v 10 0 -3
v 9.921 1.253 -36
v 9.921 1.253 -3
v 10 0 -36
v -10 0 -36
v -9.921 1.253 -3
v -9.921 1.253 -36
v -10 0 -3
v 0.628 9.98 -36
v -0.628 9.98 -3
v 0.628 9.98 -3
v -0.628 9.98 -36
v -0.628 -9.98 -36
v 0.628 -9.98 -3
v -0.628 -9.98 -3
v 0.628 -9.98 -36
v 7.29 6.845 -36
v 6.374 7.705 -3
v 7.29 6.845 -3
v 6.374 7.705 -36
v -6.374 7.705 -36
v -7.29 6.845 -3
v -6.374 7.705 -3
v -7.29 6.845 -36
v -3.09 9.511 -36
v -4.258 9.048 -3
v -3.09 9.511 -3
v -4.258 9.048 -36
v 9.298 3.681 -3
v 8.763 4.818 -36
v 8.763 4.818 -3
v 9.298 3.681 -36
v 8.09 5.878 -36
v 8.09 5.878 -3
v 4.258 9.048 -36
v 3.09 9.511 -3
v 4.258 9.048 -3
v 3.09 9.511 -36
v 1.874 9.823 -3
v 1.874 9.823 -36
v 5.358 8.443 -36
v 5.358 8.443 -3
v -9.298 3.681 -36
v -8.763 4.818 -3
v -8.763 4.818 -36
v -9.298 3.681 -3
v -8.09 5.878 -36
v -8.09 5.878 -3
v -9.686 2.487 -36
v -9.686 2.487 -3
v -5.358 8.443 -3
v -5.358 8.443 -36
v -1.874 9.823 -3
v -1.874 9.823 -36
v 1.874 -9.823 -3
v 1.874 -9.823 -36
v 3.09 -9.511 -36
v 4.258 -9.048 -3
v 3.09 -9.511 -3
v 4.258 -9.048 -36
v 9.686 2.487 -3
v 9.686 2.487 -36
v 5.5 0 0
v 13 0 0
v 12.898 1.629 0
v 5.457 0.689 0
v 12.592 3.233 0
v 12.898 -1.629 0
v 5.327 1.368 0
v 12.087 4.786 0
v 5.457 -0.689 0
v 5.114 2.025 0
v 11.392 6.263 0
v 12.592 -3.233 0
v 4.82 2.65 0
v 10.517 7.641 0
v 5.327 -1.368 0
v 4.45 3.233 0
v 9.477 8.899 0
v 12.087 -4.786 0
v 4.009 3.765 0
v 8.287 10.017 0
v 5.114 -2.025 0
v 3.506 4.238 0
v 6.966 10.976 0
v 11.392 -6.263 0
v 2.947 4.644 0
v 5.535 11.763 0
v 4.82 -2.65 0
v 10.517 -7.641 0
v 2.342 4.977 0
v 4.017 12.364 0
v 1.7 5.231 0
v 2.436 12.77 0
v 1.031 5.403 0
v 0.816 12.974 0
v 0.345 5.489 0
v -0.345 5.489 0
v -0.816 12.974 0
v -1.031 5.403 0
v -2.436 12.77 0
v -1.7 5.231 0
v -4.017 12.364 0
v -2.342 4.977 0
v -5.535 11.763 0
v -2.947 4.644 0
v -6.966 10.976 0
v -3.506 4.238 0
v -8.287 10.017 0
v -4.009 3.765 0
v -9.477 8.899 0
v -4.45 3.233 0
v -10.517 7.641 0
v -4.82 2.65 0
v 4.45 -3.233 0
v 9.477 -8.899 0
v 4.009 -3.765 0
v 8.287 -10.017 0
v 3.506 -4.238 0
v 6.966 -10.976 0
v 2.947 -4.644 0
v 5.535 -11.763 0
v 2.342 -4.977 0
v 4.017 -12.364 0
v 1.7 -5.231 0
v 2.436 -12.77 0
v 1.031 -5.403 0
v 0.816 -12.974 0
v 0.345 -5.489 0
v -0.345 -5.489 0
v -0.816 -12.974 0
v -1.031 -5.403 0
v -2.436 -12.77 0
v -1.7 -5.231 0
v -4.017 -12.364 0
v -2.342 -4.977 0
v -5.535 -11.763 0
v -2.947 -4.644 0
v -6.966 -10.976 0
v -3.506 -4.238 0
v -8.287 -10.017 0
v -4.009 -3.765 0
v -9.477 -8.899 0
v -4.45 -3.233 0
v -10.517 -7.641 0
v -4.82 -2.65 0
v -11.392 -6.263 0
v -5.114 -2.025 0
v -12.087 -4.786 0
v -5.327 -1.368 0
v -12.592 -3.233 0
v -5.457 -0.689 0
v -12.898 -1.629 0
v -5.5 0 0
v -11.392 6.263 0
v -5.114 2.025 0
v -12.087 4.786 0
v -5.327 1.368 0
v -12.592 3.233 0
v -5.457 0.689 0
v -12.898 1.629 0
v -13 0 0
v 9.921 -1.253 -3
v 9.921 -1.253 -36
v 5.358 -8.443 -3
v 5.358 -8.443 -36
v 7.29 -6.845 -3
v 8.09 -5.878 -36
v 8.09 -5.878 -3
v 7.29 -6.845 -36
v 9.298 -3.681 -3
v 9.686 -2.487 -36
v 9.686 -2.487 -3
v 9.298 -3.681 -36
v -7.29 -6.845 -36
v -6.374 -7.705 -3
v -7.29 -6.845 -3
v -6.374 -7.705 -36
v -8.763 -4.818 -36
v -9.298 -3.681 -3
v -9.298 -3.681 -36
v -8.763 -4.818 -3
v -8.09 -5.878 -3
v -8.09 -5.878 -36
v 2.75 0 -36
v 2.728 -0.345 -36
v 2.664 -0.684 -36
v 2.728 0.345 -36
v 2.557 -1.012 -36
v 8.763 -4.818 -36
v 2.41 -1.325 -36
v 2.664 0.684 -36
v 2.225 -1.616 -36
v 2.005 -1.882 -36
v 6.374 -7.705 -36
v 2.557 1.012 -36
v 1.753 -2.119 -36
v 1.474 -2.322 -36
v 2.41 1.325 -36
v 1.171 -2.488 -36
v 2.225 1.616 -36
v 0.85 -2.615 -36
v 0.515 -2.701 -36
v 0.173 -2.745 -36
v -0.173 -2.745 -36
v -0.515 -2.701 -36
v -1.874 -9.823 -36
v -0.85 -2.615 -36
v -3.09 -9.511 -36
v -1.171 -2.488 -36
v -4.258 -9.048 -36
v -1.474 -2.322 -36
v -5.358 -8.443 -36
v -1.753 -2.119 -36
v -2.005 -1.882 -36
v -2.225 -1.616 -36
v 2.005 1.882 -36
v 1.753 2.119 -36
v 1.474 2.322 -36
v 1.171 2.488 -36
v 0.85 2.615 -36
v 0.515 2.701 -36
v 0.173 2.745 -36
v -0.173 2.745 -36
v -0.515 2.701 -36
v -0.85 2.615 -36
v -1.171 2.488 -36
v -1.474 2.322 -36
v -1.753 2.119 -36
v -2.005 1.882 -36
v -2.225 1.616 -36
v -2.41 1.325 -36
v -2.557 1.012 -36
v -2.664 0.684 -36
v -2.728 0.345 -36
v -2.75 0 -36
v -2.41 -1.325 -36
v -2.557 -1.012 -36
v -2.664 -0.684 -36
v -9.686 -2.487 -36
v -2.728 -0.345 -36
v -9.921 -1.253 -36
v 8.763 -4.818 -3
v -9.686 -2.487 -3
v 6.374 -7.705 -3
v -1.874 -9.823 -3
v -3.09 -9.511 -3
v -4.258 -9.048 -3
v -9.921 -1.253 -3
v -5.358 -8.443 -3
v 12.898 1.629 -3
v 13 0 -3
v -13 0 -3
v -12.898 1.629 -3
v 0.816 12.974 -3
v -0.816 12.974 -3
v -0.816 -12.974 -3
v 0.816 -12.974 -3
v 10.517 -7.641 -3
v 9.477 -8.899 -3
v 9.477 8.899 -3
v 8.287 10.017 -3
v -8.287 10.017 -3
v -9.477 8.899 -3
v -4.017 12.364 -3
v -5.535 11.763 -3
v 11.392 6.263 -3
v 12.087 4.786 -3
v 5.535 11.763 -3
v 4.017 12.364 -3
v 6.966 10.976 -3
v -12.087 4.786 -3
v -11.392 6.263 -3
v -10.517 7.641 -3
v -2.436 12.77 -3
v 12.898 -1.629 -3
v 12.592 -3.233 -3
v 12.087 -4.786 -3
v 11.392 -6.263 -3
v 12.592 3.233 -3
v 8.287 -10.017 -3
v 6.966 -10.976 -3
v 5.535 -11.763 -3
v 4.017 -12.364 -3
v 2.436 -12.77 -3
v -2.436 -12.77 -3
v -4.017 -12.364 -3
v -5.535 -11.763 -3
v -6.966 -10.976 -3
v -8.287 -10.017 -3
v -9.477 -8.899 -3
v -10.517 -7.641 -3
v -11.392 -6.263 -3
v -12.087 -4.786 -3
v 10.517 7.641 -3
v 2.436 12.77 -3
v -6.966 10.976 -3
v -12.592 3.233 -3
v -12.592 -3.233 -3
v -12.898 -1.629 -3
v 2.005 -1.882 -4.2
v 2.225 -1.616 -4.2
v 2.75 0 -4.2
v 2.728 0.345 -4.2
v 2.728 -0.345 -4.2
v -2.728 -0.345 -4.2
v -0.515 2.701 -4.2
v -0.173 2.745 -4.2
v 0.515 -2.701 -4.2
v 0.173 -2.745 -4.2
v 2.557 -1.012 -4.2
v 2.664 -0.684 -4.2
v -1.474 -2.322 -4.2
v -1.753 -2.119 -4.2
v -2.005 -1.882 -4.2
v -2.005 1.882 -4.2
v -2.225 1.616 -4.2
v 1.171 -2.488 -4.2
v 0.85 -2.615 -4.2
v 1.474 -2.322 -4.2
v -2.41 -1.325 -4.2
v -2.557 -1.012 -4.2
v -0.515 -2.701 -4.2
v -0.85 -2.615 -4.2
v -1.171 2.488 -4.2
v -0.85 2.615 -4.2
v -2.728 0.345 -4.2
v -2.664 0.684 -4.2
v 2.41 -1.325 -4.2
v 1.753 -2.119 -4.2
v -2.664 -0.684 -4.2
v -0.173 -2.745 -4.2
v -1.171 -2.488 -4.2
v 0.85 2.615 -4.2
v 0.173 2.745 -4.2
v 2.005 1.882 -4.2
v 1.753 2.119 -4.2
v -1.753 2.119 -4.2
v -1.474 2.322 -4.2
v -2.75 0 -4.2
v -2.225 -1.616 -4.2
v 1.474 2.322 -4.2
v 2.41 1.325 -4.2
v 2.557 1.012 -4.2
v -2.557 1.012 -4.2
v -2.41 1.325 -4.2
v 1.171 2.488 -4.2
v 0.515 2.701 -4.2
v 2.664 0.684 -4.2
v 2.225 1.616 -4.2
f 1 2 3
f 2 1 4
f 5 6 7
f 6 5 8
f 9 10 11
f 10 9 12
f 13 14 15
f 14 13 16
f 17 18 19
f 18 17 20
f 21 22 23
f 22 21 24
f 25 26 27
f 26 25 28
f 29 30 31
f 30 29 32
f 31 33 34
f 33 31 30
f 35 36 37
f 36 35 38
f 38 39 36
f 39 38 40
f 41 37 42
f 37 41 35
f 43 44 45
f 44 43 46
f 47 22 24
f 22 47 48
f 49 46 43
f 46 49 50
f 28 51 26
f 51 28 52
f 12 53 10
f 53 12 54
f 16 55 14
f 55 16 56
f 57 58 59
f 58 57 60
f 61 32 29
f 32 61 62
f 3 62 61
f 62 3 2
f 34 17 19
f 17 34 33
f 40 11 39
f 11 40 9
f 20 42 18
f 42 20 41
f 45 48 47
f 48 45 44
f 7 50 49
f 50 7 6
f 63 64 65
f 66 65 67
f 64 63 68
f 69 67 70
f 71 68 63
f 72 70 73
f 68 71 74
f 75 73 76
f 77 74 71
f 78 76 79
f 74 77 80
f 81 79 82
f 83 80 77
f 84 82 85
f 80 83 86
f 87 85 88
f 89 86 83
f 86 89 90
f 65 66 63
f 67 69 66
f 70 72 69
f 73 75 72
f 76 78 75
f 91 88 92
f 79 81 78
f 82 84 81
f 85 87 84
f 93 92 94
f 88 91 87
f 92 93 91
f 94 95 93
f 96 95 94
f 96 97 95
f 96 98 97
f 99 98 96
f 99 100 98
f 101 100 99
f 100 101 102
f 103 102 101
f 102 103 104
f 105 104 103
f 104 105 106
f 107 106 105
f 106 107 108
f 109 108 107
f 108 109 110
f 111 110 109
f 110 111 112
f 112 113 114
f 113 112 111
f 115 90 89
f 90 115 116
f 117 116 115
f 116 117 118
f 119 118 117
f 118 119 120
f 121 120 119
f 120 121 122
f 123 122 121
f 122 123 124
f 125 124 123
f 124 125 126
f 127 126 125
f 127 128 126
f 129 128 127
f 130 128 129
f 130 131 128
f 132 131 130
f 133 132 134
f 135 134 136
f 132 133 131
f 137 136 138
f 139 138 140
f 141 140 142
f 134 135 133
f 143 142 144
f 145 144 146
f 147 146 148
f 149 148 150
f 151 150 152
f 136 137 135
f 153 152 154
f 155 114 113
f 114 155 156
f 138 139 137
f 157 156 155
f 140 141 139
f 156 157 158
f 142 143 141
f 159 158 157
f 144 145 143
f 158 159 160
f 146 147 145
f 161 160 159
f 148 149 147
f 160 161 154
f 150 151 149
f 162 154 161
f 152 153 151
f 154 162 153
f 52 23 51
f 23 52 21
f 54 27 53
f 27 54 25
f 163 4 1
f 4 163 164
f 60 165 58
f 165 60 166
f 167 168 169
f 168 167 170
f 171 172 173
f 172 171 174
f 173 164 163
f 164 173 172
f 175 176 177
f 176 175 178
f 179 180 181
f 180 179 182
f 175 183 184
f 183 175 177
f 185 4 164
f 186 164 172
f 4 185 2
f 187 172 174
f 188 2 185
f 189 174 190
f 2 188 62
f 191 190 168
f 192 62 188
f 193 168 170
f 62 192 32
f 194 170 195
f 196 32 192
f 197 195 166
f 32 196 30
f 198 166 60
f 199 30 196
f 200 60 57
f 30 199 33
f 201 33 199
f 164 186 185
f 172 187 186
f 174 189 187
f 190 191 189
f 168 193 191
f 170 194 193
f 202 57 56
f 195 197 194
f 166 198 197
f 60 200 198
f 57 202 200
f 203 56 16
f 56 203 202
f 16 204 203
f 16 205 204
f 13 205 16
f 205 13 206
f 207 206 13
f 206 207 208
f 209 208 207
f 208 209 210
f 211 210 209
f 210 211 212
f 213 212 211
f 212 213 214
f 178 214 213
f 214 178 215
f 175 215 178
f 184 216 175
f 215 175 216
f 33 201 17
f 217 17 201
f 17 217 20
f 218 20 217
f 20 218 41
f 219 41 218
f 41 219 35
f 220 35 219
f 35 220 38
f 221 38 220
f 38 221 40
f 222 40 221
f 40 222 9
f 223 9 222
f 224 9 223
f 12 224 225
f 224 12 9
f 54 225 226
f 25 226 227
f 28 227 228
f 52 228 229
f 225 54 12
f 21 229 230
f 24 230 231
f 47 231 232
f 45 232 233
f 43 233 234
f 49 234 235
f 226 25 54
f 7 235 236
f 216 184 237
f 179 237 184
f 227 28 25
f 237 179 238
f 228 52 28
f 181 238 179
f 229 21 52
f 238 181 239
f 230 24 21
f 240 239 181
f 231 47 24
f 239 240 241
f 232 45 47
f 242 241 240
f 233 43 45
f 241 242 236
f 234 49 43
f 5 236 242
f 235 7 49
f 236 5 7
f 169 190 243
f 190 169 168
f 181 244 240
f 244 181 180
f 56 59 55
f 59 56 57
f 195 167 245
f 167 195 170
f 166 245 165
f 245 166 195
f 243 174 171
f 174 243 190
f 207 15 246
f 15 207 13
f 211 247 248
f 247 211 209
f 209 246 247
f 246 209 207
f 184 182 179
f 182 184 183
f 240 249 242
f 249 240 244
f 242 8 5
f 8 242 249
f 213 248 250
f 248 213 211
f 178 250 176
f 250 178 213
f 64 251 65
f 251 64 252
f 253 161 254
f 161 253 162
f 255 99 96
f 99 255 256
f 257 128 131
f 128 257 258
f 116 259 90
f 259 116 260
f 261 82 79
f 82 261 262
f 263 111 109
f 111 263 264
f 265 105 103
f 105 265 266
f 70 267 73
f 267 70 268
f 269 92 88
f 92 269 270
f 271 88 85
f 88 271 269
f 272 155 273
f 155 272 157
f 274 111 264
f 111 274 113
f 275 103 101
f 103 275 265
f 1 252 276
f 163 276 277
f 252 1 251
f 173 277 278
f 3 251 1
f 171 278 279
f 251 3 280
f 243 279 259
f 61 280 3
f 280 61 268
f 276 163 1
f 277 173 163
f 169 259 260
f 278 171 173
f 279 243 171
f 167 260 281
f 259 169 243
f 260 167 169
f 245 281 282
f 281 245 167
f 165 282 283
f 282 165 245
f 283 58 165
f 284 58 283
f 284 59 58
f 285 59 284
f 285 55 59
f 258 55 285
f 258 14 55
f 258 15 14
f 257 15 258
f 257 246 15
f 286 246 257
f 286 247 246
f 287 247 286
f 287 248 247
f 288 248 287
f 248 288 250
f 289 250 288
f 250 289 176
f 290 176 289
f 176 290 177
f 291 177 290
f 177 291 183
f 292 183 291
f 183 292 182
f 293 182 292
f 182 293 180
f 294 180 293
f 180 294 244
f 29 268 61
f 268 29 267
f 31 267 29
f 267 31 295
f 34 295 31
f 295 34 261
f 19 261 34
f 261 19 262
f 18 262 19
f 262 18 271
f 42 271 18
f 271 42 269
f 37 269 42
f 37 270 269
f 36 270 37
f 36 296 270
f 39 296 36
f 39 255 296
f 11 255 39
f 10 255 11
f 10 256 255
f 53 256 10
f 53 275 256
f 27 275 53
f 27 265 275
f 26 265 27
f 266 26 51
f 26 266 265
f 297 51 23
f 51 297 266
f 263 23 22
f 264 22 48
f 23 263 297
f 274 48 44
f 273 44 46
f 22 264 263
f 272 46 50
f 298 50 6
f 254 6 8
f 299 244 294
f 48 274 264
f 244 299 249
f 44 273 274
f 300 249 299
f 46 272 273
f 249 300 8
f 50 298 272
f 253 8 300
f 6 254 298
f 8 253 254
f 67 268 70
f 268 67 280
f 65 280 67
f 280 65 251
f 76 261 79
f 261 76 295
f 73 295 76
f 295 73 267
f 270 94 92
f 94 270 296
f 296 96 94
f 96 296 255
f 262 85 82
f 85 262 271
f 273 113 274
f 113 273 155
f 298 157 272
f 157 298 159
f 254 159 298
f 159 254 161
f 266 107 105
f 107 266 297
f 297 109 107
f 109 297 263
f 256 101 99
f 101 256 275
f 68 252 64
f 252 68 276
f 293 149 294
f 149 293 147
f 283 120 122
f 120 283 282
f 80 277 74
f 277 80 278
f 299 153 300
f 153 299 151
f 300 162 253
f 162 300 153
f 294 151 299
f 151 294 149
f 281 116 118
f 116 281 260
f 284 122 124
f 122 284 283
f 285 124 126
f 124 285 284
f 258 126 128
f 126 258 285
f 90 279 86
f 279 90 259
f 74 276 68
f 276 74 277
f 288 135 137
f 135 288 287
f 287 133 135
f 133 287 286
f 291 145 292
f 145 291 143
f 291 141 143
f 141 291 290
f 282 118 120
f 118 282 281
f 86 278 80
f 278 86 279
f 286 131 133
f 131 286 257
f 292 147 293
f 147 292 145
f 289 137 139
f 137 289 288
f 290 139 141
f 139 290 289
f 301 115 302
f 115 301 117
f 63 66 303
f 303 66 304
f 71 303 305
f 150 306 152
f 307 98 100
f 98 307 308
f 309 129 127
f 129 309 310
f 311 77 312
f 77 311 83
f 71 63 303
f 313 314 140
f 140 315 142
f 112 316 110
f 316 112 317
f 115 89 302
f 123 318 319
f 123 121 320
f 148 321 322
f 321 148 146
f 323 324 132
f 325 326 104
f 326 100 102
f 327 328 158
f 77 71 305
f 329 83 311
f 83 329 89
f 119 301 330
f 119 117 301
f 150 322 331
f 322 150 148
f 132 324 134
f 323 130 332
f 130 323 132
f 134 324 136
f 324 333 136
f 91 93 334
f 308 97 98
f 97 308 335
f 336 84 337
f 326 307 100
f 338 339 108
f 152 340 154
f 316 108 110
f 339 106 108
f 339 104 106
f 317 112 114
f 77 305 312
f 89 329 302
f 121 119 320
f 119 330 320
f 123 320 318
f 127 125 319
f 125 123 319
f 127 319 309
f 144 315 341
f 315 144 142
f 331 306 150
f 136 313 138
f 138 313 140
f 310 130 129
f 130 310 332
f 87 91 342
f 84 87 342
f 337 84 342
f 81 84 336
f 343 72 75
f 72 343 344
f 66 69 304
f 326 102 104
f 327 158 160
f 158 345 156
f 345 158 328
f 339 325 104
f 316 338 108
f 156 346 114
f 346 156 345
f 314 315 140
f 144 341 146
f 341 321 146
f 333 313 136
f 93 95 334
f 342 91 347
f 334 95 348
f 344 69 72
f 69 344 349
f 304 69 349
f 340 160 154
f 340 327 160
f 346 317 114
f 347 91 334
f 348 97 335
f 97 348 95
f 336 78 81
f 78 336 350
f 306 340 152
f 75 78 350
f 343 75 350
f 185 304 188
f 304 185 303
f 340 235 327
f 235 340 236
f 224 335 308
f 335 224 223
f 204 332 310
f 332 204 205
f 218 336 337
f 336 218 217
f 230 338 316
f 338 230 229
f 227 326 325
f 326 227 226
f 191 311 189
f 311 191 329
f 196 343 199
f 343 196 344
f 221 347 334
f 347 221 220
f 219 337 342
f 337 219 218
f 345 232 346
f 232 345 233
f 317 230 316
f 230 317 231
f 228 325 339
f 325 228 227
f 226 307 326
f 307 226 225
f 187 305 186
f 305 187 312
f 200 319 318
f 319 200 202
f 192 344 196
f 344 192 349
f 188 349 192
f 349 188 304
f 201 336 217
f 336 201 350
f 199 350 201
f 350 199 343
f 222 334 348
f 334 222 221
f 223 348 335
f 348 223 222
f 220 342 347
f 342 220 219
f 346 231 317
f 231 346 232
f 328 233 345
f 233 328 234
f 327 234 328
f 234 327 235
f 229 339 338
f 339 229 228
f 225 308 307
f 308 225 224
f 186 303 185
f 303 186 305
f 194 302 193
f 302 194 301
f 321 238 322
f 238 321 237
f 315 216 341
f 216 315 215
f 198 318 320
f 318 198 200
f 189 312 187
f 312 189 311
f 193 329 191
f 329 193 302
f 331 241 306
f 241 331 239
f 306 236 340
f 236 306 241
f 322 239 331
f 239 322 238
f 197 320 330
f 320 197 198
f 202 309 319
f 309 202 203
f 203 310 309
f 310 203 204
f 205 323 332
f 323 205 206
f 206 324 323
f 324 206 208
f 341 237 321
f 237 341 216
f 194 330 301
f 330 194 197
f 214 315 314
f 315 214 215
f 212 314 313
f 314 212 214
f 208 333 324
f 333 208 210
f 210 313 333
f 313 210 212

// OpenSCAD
$fn = 50;


difference() {
	union() {
		translate(v = [0, 0, -36.0000000000]) {
			cylinder(h = 36, r = 10.0000000000);
		}
		translate(v = [0, 0, -3.0000000000]) {
			cylinder(h = 3, r = 13.0000000000);
		}
	}
	union() {
		translate(v = [0, 0, 0]) {
			rotate(a = [0, 0, 0]) {
				difference() {
					union() {
						#translate(v = [0, 0, -36.0000000000]) {
							cylinder(h = 36, r = 2.2500000000);
						}
						#translate(v = [0, 0, -4.2000000000]) {
							cylinder(h = 4.2000000000, r1 = 2.7500000000, r2 = 5.5000000000);
						}
						#translate(v = [0, 0, -36.0000000000]) {
							cylinder(h = 36, r = 2.7500000000);
						}
						#translate(v = [0, 0, -36.0000000000]) {
							cylinder(h = 36, r = 2.2500000000);
						}
					}
					union();
				}
			}
		}
	}
}
